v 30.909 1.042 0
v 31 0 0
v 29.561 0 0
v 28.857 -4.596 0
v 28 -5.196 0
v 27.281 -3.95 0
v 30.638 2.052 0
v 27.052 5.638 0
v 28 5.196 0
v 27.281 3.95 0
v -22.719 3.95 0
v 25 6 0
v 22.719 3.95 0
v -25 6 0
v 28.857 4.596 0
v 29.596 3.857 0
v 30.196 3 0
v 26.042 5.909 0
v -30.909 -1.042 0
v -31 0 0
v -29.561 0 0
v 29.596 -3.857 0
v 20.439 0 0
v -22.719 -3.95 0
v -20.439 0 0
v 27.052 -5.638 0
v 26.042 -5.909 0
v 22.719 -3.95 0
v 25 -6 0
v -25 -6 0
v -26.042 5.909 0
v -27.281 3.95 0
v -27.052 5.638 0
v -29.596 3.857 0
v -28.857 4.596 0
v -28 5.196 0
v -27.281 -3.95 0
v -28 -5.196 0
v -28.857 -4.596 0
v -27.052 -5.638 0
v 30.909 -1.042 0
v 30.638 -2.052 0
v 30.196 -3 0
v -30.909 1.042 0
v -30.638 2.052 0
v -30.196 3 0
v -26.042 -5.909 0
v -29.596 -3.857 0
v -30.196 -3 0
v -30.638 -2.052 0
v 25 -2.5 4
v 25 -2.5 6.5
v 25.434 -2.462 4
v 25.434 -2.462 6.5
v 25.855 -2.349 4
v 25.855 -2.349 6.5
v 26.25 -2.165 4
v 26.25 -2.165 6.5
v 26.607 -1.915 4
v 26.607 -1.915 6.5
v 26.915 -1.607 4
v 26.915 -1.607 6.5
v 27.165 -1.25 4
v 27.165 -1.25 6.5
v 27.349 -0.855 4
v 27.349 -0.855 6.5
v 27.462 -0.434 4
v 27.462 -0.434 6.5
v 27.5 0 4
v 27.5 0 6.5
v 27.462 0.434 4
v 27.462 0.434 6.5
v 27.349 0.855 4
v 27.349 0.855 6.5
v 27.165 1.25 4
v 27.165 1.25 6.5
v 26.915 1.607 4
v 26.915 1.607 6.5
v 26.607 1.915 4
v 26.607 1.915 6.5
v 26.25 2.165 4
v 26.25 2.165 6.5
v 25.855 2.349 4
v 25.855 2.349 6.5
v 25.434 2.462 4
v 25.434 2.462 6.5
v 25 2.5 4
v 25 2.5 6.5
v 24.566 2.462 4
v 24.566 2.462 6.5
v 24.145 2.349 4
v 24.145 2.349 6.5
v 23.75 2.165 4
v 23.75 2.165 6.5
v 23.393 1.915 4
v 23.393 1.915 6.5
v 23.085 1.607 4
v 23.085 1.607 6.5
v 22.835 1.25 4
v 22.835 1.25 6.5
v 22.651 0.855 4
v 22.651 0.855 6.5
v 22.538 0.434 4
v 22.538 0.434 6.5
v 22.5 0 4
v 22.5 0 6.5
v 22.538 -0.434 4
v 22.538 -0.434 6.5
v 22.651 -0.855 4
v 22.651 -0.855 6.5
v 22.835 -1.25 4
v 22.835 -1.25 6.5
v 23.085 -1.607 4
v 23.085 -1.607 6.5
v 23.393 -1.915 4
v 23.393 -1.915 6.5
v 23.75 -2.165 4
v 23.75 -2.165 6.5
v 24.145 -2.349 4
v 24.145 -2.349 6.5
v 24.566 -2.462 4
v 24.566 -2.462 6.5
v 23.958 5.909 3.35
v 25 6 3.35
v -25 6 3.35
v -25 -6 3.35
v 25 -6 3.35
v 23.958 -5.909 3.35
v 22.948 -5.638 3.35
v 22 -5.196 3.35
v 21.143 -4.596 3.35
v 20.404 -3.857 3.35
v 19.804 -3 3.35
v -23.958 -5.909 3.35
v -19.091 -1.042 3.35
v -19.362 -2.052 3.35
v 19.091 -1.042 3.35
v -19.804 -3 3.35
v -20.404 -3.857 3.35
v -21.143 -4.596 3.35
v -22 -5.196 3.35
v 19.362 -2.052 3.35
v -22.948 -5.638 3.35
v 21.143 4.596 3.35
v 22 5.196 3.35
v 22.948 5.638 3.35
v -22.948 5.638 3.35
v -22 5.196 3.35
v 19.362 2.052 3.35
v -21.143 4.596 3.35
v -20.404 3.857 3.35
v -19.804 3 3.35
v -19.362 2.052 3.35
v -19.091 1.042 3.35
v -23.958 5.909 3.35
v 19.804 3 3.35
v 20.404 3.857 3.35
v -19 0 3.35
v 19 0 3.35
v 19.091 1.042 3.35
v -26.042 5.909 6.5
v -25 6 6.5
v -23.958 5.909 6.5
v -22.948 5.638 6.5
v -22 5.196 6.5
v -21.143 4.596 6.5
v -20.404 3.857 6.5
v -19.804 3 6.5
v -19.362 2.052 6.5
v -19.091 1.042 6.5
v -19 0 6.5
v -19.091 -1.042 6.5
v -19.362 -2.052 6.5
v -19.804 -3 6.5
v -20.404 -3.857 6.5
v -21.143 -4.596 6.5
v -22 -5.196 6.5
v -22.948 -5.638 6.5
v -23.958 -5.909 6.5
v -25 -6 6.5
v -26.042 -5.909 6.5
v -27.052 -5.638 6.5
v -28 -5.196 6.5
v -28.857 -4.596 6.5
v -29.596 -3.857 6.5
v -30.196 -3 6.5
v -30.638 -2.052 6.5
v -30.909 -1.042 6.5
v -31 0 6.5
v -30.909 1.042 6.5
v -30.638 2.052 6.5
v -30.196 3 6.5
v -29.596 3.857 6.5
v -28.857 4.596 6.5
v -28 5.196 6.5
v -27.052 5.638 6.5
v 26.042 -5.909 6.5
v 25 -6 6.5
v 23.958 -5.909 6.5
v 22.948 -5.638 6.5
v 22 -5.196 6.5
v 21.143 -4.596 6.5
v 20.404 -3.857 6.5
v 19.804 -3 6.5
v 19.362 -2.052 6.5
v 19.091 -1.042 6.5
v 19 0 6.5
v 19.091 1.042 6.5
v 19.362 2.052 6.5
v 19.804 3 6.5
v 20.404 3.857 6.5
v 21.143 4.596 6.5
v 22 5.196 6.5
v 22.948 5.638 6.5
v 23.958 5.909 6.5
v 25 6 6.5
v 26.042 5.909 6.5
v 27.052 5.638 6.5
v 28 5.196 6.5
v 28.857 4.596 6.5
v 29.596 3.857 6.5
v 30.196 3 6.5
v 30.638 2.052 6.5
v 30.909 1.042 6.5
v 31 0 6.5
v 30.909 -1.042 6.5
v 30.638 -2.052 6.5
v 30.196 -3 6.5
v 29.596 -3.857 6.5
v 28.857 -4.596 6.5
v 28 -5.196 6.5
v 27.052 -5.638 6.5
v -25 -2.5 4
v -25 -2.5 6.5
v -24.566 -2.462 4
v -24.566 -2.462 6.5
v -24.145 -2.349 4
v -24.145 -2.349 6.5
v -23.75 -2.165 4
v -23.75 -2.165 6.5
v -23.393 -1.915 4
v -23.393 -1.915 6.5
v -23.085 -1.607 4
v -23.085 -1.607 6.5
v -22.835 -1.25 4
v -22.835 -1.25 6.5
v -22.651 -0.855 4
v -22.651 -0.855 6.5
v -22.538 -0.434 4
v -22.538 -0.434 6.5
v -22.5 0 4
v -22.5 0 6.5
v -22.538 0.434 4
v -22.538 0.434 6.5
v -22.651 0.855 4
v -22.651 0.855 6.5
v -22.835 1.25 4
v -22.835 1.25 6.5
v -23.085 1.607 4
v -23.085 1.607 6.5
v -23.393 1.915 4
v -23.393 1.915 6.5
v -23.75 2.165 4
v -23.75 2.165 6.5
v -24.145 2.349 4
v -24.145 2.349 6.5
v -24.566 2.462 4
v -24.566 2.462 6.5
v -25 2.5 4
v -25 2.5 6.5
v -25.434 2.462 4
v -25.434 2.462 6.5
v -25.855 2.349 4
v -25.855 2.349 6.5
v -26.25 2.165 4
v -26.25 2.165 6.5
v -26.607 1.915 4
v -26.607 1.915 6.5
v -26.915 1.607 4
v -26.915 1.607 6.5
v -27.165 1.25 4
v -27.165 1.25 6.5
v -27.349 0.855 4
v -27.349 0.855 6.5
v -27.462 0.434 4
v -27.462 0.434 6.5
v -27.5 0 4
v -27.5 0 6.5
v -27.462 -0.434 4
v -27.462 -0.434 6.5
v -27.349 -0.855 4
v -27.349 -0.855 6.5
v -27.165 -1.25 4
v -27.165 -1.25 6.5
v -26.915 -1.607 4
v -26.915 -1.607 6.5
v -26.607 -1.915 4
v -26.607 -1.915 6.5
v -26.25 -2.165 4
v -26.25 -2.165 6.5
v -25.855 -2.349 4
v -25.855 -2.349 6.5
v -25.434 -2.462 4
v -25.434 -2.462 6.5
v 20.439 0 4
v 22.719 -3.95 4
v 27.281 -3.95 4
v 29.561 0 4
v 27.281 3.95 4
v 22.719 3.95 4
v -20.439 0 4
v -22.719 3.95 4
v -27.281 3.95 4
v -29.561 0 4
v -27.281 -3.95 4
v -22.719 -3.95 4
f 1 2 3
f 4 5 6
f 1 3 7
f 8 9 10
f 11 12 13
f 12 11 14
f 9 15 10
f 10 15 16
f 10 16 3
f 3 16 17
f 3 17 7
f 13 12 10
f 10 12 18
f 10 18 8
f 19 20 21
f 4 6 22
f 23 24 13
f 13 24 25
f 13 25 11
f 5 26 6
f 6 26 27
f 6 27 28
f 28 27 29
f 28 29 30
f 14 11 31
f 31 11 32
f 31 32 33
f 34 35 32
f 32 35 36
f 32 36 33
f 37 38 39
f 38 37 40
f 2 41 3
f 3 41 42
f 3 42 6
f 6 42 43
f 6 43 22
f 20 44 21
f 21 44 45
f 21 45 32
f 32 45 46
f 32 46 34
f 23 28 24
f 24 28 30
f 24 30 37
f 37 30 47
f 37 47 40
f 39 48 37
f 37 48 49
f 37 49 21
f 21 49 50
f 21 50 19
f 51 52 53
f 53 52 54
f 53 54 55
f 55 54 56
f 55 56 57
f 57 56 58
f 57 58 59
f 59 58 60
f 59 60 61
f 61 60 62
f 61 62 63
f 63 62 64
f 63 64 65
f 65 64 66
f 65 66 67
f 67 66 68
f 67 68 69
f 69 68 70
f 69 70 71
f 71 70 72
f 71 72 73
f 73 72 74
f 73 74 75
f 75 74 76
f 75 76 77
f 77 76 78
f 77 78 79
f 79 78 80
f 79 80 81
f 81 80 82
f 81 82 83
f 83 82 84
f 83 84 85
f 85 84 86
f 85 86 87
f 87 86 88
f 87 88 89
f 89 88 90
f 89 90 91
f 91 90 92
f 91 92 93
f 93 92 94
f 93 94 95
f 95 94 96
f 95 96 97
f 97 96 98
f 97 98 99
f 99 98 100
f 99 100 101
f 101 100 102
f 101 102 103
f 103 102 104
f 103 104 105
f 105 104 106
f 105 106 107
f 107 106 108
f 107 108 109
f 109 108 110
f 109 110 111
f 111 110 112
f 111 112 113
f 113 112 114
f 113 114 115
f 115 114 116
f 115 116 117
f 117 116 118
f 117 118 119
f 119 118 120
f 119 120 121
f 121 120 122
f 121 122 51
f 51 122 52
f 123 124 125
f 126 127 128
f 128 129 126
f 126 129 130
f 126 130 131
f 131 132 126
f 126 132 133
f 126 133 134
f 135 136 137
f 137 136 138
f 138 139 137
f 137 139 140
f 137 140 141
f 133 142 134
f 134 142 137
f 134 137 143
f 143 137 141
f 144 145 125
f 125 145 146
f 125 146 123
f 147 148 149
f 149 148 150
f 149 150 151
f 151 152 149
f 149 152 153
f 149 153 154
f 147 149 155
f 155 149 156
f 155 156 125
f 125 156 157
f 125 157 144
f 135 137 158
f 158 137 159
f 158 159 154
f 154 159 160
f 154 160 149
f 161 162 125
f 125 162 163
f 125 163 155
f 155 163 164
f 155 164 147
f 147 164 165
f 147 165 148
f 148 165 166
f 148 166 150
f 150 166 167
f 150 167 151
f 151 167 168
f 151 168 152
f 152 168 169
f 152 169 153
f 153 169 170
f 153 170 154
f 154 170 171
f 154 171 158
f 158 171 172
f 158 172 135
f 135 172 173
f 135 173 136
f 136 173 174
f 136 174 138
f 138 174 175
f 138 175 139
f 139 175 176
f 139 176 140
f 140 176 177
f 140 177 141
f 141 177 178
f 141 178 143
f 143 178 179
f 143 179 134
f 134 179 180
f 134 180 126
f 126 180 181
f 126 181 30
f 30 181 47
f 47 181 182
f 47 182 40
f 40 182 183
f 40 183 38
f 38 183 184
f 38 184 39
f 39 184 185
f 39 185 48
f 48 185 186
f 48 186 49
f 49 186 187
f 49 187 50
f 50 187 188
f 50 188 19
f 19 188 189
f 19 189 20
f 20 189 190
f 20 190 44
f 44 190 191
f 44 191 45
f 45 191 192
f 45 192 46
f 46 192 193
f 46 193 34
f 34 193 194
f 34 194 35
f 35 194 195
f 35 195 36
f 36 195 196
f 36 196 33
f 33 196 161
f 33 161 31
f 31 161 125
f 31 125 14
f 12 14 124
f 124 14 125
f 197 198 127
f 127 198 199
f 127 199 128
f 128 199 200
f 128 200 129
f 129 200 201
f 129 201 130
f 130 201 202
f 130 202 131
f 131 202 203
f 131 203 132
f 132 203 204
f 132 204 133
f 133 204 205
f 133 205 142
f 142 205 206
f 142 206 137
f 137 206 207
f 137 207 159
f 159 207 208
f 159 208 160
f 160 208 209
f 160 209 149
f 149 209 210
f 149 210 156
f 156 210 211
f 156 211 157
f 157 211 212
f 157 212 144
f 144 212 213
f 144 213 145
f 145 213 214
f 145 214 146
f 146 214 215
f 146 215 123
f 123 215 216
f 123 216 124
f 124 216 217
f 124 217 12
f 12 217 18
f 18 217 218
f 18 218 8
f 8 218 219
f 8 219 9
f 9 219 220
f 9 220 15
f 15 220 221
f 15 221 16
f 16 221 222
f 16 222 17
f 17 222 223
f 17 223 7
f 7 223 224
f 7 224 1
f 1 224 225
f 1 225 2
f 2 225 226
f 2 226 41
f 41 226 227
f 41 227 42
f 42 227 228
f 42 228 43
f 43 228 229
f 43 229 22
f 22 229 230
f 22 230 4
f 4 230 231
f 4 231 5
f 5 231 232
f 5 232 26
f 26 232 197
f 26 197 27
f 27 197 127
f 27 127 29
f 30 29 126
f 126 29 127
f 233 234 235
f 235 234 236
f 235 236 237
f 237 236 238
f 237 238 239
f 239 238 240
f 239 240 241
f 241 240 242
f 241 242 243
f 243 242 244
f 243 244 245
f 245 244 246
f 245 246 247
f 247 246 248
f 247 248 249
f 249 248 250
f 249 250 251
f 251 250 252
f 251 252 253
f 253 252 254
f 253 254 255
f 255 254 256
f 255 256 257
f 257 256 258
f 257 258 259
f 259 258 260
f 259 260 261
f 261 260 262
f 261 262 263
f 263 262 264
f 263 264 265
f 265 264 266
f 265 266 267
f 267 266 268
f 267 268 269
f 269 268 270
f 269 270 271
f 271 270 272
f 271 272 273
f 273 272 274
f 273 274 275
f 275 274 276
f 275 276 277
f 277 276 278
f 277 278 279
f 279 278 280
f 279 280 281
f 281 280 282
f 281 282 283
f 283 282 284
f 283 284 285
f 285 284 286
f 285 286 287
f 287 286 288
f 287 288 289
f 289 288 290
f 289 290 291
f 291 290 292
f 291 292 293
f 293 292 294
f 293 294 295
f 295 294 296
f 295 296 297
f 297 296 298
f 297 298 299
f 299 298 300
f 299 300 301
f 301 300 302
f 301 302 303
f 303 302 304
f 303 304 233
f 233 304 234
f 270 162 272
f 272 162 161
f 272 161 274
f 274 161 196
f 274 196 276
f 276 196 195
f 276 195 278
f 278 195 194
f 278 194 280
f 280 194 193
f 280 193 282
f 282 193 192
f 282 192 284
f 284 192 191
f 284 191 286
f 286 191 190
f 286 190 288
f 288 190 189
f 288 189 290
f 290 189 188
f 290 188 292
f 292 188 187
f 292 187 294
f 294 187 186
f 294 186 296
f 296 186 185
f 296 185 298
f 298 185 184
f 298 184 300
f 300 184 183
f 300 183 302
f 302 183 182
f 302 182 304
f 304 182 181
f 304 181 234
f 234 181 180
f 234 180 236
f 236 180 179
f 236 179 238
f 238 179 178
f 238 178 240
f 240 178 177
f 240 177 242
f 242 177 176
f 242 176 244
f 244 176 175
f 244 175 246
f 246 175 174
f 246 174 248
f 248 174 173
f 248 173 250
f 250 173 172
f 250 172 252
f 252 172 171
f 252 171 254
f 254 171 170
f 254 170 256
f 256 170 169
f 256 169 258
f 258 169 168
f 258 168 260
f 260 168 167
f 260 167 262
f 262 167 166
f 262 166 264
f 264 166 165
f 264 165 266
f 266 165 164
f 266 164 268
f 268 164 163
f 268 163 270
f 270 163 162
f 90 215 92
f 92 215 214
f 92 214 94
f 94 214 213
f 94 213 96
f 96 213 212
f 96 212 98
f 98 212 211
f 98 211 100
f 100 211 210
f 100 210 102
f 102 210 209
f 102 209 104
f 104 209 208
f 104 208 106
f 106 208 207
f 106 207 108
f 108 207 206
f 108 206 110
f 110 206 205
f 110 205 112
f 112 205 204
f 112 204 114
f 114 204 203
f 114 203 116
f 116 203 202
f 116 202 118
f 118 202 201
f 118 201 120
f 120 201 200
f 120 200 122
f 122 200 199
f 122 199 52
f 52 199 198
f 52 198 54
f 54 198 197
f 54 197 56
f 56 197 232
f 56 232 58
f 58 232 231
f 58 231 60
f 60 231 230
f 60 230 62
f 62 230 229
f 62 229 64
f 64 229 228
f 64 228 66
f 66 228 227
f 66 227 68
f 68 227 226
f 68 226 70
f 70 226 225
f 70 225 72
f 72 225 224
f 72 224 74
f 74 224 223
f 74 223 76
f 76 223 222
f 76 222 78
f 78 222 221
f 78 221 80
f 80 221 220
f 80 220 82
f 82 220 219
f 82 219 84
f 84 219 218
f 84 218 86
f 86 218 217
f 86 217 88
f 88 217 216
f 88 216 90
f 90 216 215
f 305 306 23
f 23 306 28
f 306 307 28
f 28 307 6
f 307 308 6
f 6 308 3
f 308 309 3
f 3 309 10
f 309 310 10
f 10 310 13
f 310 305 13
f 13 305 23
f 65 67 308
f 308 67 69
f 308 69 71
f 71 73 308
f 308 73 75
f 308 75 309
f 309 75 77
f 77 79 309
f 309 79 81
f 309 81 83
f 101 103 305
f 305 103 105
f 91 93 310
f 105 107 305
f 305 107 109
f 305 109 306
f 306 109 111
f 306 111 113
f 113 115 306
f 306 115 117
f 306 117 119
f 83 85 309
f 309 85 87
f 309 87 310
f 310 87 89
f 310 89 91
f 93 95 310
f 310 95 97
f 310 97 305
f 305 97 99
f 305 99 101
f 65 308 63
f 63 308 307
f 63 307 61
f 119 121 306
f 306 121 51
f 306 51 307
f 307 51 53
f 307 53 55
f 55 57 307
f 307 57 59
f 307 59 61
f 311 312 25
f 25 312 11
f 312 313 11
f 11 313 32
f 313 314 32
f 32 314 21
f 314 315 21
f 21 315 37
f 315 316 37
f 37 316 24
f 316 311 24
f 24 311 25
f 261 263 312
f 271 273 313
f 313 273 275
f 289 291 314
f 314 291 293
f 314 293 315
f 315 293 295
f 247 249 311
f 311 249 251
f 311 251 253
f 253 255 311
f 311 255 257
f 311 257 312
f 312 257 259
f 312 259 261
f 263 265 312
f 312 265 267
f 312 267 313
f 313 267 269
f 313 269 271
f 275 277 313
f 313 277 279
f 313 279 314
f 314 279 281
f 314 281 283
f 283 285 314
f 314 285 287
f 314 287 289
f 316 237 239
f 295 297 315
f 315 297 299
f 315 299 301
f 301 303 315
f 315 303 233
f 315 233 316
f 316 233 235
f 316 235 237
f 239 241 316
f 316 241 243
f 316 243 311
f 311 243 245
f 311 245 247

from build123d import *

# Parameters (mm, degrees)
SKETCH1_R           = 2.5
BOSS_EXTRUDE1_DEPTH = 3.35
SKETCH2_R           = 6
SKETCH2_R_2         = 2.5
BOSS_EXTRUDE2_DEPTH = 3.15
CUT_EXTRUDE1_DEPTH  = 4


with BuildPart() as part:
    # Sketch1 → Boss-Extrude1 (new body)
    with BuildSketch(Plane.XY):
        with BuildLine():
            Line((-25, -6), (25, -6))
            ThreePointArc((25, -6), (31, 0), (25, 6))
            Line((25, 6), (-25, 6))
            ThreePointArc((-25, 6), (-31, 0), (-25, -6))
        make_face()
        with Locations((-25, 0)):
            Circle(SKETCH1_R, mode=Mode.SUBTRACT)
        with Locations((25, 0)):
            Circle(SKETCH1_R, mode=Mode.SUBTRACT)
    extrude(amount=BOSS_EXTRUDE1_DEPTH)

    # Sketch2 → Boss-Extrude2 (add)
    # profile 1 of 2: a face of its own
    with BuildSketch(Plane.XY.offset(3.35)):
        with Locations(Location((-25, 0, 0), (0, 0, 270))):
            Circle(SKETCH2_R)
        with Locations((-25, 0)):
            Circle(SKETCH2_R_2, mode=Mode.SUBTRACT)
    # profile 2 of 2: a face of its own
    with BuildSketch(Plane.XY.offset(3.35)):
        with Locations(Location((25, 0, 0), (0, 0, 90))):
            Circle(SKETCH2_R)
        with Locations((25, 0)):
            Circle(SKETCH2_R_2, mode=Mode.SUBTRACT)
    extrude(amount=BOSS_EXTRUDE2_DEPTH)

    # Sketch3 → Cut-Extrude1 (cut)
    with BuildSketch(Plane(origin=(0, 0, 0), x_dir=(-1, 0, 0), z_dir=(0, 0, -1))):
        Polygon((20.438932873, 0), (22.719466437, 3.95), (27.280533563, 3.95), (29.561067127, 0), (27.280533563, -3.95), (22.719466437, -3.95), align=None)
        Polygon((-22.719466437, 3.95), (-27.280533563, 3.95), (-29.561067127, 0), (-27.280533563, -3.95), (-22.719466437, -3.95), (-20.438932873, 0), align=None)
    extrude(amount=-CUT_EXTRUDE1_DEPTH, mode=Mode.SUBTRACT)


solid = part.part
